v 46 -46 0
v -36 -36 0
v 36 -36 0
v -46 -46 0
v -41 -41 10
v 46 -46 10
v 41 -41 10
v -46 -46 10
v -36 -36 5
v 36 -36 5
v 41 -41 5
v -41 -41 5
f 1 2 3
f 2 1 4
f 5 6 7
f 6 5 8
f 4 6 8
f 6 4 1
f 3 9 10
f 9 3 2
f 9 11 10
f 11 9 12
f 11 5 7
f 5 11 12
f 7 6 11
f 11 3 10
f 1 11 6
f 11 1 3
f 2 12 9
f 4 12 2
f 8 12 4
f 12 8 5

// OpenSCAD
// file: local_modules/lcd.scad
LCD_X=76;
LCD_Y=1.5;
LCD_Z=138;
LCD_DISP_X=LCD_X - 1.5 * 2;
LCD_DISP_Z_OFFSET_FROM_BOTTOM=6;
LCD_DISP_Z=LCD_Z-LCD_DISP_Z_OFFSET_FROM_BOTTOM - 1.5;

module lcd(margin=0, draw_display_region=false) {
  translate([0, 0, LCD_Z/2]){
    cube(size=[LCD_X+margin, LCD_Y+margin, LCD_Z+margin], center=true);

    if(draw_display_region){
      translate([0, 0, -(LCD_Z - LCD_DISP_Z)/2 + LCD_DISP_Z_OFFSET_FROM_BOTTOM]) 
      color("green", 0.5)
      cube(size=[LCD_DISP_X, LCD_Y, LCD_DISP_Z], center=true);
    }
  }
}
// file: scad-utils/morphology.scad
// Copyright (c) 2013 Oskar Linde. All rights reserved.
// License: BSD
//
// This library contains basic 2D morphology operations
//
// outset(d=1)            - creates a polygon at an offset d outside a 2D shape
// inset(d=1)             - creates a polygon at an offset d inside a 2D shape
// fillet(r=1)            - adds fillets of radius r to all concave corners of a 2D shape
// rounding(r=1)          - adds rounding to all convex corners of a 2D shape
// shell(d,center=false)  - makes a shell of width d along the edge of a 2D shape
//                        - positive values of d places the shell on the outside
//                        - negative values of d places the shell on the inside
//                        - center=true and positive d places the shell centered on the edge

module outset(d=1) {
	// Bug workaround for older OpenSCAD versions
	if (version_num() < 20130424) render() outset_extruded(d) children();
	else minkowski() {
		circle(r=d);
		children();
	}
}

module outset_extruded(d=1) {
   projection(cut=true) minkowski() {
        cylinder(r=d);
        linear_extrude(center=true) children();
   }
}

module inset(d=1) {
	 render() inverse() outset(d=d) inverse() children();
}

module fillet(r=1) {
	inset(d=r) render() outset(d=r) children();
}

module rounding(r=1) {
	outset(d=r) inset(d=r) children();
}

module shell(d,center=false) {
	if (center && d > 0) {
		difference() {
			outset(d=d/2) children();
			inset(d=d/2) children();
		}
	}
	if (!center && d > 0) {
		difference() {
			outset(d=d) children();
			children();
		}
	}
	if (!center && d < 0) {
		difference() {
			children();
			inset(d=-d) children();
		}
	}
	if (d == 0) children();
}


// Below are for internal use only

module inverse() {
	difference() {
		square(1e5,center=true);
		children();
	}
}


// TEST CODE

use <mirror.scad>

module arrow(l=1,w=.6,t=0.15) {
	mirror_y() polygon([[0,0],[l,0],[l-w/2,w/2],[l-w/2-sqrt(2)*t,w/2],[l-t/2-sqrt(2)*t,t/2],[0,t/2]]);
}

module shape() {
	polygon([[0,0],[1,0],[1.5,1],[2.5,1],[2,-1],[0,-1]]);
}

if(0) assign($fn=32) {

	for (p = [0:10*3-1]) assign(o=floor(p/3)) {
		translate([(p%3)*2.5,-o*3]) {
			//%if (p % 3 == 1) translate([0,0,1]) shape();
			if (p % 3 == 0) shape();
			if (p % 3 == 1) translate([0.6,0]) arrow();
			if (p % 3 == 2) {
				if (o == 0) inset(d=0.3) shape();
				if (o == 1) outset(d=0.3) shape();
				if (o == 2) rounding(r=0.3) shape();
				if (o == 3) fillet(r=0.3) shape();
				if (o == 4) shell(d=0.3) shape();
				if (o == 5) shell(d=-0.3) shape();
				if (o == 6) shell(d=0.3,center=true) shape();
				if (o == 7) rounding(r=0.3) fillet(r=0.3) shape();
				if (o == 8) shell(d=0.3,center=true) fillet(r=0.3) rounding(r=0.3) shape();
				if (o == 9) shell(d=-0.3) fillet(r=0.3) rounding(r=0.3) shape();
			}
		}
	}
}
// file: scad-utils/mirror.scad
// Copyright (c) 2013 Oskar Linde. All rights reserved.
// License: BSD
//
// This library contains simple mirroring functions
//
// mirror_x()
// mirror_y()
// mirror_z()


module mirror_x() {
  union() {
    child();
    scale([-1,1,1]) child();
  }
}

module mirror_y() {
  union() {
    child();
    scale([1,-1,1]) child();
  }
}

module mirror_z() {
  union() {
    child();
    scale([1,1,-1]) child();
  }
}
// file: _kagedourou_top.scad
include <scad-utils/mirror.scad>
include <scad-utils/morphology.scad>

include <./local_modules/lcd.scad>


module lcd_for_top(){
  translate([0, KD_TOP_Y/2 - LCD_Y/2 - (KD_FRAME_INNER_T + 0.5), LCD_Z + KD_FRAME_T - 2]) 
  rotate([180, 0, 0]) 
  lcd(draw_display_region=true);
}

KD_FRAME_T=10;
KD_FRAME_INNER_T=5;

KD_TOP_X=LCD_X-2*2+KD_FRAME_T*2;
KD_TOP_Y=KD_TOP_X;
echo(str("KD_TOP_X=", KD_TOP_X));
echo(str("KD_TOP_Y=", KD_TOP_Y));

KD_TOP_DISP_HOLDER_X=10;
KD_TOP_DISP_HOLDER_Y=4*2;

module kagedourou_top_display_holder(args) {
  translate([0, KD_TOP_Y/2 - KD_FRAME_INNER_T, 0]){
    difference() {

      linear_extrude(height=KD_FRAME_T, center=!true, convexity=10, twist=0)
      square(size=[KD_TOP_DISP_HOLDER_X, KD_TOP_DISP_HOLDER_Y], center=true);

      translate([0, 0, KD_FRAME_T - 2]) 
      linear_extrude(height=KD_FRAME_T, center=!true, convexity=10, twist=0)
      square(size=[KD_TOP_DISP_HOLDER_X, (LCD_Y + 1) * 2], center=true);
    }

  }
}

module kagedourou_top() {
  difference() {
    linear_extrude(height=KD_FRAME_T, center=!true, convexity=10, twist=0)
    difference(){
      square(size=[KD_TOP_X, KD_TOP_Y], center=true);

      // top window
      offset(delta=-KD_FRAME_T)
      square(size=[KD_TOP_X, KD_TOP_Y], center=true);
    }

    translate([0, 0, 5]) 
    linear_extrude(height=KD_FRAME_T, center=!true, convexity=10, twist=0)
    offset(delta=(KD_FRAME_T - KD_FRAME_INNER_T))
    offset(delta=-KD_FRAME_T)
    square(size=[KD_TOP_X, KD_TOP_Y], center=true);
  }

  kagedourou_top_display_holder();
}

// kagedourou_top();
// main file
include <./_kagedourou_top.scad>

$fn=50;

intersection(){
  kagedourou_top();

  rotate([0, 0, 45 + 180])
  cube(size=[KD_TOP_X*2, KD_TOP_Y*2, KD_FRAME_T*2], center=false);
}
